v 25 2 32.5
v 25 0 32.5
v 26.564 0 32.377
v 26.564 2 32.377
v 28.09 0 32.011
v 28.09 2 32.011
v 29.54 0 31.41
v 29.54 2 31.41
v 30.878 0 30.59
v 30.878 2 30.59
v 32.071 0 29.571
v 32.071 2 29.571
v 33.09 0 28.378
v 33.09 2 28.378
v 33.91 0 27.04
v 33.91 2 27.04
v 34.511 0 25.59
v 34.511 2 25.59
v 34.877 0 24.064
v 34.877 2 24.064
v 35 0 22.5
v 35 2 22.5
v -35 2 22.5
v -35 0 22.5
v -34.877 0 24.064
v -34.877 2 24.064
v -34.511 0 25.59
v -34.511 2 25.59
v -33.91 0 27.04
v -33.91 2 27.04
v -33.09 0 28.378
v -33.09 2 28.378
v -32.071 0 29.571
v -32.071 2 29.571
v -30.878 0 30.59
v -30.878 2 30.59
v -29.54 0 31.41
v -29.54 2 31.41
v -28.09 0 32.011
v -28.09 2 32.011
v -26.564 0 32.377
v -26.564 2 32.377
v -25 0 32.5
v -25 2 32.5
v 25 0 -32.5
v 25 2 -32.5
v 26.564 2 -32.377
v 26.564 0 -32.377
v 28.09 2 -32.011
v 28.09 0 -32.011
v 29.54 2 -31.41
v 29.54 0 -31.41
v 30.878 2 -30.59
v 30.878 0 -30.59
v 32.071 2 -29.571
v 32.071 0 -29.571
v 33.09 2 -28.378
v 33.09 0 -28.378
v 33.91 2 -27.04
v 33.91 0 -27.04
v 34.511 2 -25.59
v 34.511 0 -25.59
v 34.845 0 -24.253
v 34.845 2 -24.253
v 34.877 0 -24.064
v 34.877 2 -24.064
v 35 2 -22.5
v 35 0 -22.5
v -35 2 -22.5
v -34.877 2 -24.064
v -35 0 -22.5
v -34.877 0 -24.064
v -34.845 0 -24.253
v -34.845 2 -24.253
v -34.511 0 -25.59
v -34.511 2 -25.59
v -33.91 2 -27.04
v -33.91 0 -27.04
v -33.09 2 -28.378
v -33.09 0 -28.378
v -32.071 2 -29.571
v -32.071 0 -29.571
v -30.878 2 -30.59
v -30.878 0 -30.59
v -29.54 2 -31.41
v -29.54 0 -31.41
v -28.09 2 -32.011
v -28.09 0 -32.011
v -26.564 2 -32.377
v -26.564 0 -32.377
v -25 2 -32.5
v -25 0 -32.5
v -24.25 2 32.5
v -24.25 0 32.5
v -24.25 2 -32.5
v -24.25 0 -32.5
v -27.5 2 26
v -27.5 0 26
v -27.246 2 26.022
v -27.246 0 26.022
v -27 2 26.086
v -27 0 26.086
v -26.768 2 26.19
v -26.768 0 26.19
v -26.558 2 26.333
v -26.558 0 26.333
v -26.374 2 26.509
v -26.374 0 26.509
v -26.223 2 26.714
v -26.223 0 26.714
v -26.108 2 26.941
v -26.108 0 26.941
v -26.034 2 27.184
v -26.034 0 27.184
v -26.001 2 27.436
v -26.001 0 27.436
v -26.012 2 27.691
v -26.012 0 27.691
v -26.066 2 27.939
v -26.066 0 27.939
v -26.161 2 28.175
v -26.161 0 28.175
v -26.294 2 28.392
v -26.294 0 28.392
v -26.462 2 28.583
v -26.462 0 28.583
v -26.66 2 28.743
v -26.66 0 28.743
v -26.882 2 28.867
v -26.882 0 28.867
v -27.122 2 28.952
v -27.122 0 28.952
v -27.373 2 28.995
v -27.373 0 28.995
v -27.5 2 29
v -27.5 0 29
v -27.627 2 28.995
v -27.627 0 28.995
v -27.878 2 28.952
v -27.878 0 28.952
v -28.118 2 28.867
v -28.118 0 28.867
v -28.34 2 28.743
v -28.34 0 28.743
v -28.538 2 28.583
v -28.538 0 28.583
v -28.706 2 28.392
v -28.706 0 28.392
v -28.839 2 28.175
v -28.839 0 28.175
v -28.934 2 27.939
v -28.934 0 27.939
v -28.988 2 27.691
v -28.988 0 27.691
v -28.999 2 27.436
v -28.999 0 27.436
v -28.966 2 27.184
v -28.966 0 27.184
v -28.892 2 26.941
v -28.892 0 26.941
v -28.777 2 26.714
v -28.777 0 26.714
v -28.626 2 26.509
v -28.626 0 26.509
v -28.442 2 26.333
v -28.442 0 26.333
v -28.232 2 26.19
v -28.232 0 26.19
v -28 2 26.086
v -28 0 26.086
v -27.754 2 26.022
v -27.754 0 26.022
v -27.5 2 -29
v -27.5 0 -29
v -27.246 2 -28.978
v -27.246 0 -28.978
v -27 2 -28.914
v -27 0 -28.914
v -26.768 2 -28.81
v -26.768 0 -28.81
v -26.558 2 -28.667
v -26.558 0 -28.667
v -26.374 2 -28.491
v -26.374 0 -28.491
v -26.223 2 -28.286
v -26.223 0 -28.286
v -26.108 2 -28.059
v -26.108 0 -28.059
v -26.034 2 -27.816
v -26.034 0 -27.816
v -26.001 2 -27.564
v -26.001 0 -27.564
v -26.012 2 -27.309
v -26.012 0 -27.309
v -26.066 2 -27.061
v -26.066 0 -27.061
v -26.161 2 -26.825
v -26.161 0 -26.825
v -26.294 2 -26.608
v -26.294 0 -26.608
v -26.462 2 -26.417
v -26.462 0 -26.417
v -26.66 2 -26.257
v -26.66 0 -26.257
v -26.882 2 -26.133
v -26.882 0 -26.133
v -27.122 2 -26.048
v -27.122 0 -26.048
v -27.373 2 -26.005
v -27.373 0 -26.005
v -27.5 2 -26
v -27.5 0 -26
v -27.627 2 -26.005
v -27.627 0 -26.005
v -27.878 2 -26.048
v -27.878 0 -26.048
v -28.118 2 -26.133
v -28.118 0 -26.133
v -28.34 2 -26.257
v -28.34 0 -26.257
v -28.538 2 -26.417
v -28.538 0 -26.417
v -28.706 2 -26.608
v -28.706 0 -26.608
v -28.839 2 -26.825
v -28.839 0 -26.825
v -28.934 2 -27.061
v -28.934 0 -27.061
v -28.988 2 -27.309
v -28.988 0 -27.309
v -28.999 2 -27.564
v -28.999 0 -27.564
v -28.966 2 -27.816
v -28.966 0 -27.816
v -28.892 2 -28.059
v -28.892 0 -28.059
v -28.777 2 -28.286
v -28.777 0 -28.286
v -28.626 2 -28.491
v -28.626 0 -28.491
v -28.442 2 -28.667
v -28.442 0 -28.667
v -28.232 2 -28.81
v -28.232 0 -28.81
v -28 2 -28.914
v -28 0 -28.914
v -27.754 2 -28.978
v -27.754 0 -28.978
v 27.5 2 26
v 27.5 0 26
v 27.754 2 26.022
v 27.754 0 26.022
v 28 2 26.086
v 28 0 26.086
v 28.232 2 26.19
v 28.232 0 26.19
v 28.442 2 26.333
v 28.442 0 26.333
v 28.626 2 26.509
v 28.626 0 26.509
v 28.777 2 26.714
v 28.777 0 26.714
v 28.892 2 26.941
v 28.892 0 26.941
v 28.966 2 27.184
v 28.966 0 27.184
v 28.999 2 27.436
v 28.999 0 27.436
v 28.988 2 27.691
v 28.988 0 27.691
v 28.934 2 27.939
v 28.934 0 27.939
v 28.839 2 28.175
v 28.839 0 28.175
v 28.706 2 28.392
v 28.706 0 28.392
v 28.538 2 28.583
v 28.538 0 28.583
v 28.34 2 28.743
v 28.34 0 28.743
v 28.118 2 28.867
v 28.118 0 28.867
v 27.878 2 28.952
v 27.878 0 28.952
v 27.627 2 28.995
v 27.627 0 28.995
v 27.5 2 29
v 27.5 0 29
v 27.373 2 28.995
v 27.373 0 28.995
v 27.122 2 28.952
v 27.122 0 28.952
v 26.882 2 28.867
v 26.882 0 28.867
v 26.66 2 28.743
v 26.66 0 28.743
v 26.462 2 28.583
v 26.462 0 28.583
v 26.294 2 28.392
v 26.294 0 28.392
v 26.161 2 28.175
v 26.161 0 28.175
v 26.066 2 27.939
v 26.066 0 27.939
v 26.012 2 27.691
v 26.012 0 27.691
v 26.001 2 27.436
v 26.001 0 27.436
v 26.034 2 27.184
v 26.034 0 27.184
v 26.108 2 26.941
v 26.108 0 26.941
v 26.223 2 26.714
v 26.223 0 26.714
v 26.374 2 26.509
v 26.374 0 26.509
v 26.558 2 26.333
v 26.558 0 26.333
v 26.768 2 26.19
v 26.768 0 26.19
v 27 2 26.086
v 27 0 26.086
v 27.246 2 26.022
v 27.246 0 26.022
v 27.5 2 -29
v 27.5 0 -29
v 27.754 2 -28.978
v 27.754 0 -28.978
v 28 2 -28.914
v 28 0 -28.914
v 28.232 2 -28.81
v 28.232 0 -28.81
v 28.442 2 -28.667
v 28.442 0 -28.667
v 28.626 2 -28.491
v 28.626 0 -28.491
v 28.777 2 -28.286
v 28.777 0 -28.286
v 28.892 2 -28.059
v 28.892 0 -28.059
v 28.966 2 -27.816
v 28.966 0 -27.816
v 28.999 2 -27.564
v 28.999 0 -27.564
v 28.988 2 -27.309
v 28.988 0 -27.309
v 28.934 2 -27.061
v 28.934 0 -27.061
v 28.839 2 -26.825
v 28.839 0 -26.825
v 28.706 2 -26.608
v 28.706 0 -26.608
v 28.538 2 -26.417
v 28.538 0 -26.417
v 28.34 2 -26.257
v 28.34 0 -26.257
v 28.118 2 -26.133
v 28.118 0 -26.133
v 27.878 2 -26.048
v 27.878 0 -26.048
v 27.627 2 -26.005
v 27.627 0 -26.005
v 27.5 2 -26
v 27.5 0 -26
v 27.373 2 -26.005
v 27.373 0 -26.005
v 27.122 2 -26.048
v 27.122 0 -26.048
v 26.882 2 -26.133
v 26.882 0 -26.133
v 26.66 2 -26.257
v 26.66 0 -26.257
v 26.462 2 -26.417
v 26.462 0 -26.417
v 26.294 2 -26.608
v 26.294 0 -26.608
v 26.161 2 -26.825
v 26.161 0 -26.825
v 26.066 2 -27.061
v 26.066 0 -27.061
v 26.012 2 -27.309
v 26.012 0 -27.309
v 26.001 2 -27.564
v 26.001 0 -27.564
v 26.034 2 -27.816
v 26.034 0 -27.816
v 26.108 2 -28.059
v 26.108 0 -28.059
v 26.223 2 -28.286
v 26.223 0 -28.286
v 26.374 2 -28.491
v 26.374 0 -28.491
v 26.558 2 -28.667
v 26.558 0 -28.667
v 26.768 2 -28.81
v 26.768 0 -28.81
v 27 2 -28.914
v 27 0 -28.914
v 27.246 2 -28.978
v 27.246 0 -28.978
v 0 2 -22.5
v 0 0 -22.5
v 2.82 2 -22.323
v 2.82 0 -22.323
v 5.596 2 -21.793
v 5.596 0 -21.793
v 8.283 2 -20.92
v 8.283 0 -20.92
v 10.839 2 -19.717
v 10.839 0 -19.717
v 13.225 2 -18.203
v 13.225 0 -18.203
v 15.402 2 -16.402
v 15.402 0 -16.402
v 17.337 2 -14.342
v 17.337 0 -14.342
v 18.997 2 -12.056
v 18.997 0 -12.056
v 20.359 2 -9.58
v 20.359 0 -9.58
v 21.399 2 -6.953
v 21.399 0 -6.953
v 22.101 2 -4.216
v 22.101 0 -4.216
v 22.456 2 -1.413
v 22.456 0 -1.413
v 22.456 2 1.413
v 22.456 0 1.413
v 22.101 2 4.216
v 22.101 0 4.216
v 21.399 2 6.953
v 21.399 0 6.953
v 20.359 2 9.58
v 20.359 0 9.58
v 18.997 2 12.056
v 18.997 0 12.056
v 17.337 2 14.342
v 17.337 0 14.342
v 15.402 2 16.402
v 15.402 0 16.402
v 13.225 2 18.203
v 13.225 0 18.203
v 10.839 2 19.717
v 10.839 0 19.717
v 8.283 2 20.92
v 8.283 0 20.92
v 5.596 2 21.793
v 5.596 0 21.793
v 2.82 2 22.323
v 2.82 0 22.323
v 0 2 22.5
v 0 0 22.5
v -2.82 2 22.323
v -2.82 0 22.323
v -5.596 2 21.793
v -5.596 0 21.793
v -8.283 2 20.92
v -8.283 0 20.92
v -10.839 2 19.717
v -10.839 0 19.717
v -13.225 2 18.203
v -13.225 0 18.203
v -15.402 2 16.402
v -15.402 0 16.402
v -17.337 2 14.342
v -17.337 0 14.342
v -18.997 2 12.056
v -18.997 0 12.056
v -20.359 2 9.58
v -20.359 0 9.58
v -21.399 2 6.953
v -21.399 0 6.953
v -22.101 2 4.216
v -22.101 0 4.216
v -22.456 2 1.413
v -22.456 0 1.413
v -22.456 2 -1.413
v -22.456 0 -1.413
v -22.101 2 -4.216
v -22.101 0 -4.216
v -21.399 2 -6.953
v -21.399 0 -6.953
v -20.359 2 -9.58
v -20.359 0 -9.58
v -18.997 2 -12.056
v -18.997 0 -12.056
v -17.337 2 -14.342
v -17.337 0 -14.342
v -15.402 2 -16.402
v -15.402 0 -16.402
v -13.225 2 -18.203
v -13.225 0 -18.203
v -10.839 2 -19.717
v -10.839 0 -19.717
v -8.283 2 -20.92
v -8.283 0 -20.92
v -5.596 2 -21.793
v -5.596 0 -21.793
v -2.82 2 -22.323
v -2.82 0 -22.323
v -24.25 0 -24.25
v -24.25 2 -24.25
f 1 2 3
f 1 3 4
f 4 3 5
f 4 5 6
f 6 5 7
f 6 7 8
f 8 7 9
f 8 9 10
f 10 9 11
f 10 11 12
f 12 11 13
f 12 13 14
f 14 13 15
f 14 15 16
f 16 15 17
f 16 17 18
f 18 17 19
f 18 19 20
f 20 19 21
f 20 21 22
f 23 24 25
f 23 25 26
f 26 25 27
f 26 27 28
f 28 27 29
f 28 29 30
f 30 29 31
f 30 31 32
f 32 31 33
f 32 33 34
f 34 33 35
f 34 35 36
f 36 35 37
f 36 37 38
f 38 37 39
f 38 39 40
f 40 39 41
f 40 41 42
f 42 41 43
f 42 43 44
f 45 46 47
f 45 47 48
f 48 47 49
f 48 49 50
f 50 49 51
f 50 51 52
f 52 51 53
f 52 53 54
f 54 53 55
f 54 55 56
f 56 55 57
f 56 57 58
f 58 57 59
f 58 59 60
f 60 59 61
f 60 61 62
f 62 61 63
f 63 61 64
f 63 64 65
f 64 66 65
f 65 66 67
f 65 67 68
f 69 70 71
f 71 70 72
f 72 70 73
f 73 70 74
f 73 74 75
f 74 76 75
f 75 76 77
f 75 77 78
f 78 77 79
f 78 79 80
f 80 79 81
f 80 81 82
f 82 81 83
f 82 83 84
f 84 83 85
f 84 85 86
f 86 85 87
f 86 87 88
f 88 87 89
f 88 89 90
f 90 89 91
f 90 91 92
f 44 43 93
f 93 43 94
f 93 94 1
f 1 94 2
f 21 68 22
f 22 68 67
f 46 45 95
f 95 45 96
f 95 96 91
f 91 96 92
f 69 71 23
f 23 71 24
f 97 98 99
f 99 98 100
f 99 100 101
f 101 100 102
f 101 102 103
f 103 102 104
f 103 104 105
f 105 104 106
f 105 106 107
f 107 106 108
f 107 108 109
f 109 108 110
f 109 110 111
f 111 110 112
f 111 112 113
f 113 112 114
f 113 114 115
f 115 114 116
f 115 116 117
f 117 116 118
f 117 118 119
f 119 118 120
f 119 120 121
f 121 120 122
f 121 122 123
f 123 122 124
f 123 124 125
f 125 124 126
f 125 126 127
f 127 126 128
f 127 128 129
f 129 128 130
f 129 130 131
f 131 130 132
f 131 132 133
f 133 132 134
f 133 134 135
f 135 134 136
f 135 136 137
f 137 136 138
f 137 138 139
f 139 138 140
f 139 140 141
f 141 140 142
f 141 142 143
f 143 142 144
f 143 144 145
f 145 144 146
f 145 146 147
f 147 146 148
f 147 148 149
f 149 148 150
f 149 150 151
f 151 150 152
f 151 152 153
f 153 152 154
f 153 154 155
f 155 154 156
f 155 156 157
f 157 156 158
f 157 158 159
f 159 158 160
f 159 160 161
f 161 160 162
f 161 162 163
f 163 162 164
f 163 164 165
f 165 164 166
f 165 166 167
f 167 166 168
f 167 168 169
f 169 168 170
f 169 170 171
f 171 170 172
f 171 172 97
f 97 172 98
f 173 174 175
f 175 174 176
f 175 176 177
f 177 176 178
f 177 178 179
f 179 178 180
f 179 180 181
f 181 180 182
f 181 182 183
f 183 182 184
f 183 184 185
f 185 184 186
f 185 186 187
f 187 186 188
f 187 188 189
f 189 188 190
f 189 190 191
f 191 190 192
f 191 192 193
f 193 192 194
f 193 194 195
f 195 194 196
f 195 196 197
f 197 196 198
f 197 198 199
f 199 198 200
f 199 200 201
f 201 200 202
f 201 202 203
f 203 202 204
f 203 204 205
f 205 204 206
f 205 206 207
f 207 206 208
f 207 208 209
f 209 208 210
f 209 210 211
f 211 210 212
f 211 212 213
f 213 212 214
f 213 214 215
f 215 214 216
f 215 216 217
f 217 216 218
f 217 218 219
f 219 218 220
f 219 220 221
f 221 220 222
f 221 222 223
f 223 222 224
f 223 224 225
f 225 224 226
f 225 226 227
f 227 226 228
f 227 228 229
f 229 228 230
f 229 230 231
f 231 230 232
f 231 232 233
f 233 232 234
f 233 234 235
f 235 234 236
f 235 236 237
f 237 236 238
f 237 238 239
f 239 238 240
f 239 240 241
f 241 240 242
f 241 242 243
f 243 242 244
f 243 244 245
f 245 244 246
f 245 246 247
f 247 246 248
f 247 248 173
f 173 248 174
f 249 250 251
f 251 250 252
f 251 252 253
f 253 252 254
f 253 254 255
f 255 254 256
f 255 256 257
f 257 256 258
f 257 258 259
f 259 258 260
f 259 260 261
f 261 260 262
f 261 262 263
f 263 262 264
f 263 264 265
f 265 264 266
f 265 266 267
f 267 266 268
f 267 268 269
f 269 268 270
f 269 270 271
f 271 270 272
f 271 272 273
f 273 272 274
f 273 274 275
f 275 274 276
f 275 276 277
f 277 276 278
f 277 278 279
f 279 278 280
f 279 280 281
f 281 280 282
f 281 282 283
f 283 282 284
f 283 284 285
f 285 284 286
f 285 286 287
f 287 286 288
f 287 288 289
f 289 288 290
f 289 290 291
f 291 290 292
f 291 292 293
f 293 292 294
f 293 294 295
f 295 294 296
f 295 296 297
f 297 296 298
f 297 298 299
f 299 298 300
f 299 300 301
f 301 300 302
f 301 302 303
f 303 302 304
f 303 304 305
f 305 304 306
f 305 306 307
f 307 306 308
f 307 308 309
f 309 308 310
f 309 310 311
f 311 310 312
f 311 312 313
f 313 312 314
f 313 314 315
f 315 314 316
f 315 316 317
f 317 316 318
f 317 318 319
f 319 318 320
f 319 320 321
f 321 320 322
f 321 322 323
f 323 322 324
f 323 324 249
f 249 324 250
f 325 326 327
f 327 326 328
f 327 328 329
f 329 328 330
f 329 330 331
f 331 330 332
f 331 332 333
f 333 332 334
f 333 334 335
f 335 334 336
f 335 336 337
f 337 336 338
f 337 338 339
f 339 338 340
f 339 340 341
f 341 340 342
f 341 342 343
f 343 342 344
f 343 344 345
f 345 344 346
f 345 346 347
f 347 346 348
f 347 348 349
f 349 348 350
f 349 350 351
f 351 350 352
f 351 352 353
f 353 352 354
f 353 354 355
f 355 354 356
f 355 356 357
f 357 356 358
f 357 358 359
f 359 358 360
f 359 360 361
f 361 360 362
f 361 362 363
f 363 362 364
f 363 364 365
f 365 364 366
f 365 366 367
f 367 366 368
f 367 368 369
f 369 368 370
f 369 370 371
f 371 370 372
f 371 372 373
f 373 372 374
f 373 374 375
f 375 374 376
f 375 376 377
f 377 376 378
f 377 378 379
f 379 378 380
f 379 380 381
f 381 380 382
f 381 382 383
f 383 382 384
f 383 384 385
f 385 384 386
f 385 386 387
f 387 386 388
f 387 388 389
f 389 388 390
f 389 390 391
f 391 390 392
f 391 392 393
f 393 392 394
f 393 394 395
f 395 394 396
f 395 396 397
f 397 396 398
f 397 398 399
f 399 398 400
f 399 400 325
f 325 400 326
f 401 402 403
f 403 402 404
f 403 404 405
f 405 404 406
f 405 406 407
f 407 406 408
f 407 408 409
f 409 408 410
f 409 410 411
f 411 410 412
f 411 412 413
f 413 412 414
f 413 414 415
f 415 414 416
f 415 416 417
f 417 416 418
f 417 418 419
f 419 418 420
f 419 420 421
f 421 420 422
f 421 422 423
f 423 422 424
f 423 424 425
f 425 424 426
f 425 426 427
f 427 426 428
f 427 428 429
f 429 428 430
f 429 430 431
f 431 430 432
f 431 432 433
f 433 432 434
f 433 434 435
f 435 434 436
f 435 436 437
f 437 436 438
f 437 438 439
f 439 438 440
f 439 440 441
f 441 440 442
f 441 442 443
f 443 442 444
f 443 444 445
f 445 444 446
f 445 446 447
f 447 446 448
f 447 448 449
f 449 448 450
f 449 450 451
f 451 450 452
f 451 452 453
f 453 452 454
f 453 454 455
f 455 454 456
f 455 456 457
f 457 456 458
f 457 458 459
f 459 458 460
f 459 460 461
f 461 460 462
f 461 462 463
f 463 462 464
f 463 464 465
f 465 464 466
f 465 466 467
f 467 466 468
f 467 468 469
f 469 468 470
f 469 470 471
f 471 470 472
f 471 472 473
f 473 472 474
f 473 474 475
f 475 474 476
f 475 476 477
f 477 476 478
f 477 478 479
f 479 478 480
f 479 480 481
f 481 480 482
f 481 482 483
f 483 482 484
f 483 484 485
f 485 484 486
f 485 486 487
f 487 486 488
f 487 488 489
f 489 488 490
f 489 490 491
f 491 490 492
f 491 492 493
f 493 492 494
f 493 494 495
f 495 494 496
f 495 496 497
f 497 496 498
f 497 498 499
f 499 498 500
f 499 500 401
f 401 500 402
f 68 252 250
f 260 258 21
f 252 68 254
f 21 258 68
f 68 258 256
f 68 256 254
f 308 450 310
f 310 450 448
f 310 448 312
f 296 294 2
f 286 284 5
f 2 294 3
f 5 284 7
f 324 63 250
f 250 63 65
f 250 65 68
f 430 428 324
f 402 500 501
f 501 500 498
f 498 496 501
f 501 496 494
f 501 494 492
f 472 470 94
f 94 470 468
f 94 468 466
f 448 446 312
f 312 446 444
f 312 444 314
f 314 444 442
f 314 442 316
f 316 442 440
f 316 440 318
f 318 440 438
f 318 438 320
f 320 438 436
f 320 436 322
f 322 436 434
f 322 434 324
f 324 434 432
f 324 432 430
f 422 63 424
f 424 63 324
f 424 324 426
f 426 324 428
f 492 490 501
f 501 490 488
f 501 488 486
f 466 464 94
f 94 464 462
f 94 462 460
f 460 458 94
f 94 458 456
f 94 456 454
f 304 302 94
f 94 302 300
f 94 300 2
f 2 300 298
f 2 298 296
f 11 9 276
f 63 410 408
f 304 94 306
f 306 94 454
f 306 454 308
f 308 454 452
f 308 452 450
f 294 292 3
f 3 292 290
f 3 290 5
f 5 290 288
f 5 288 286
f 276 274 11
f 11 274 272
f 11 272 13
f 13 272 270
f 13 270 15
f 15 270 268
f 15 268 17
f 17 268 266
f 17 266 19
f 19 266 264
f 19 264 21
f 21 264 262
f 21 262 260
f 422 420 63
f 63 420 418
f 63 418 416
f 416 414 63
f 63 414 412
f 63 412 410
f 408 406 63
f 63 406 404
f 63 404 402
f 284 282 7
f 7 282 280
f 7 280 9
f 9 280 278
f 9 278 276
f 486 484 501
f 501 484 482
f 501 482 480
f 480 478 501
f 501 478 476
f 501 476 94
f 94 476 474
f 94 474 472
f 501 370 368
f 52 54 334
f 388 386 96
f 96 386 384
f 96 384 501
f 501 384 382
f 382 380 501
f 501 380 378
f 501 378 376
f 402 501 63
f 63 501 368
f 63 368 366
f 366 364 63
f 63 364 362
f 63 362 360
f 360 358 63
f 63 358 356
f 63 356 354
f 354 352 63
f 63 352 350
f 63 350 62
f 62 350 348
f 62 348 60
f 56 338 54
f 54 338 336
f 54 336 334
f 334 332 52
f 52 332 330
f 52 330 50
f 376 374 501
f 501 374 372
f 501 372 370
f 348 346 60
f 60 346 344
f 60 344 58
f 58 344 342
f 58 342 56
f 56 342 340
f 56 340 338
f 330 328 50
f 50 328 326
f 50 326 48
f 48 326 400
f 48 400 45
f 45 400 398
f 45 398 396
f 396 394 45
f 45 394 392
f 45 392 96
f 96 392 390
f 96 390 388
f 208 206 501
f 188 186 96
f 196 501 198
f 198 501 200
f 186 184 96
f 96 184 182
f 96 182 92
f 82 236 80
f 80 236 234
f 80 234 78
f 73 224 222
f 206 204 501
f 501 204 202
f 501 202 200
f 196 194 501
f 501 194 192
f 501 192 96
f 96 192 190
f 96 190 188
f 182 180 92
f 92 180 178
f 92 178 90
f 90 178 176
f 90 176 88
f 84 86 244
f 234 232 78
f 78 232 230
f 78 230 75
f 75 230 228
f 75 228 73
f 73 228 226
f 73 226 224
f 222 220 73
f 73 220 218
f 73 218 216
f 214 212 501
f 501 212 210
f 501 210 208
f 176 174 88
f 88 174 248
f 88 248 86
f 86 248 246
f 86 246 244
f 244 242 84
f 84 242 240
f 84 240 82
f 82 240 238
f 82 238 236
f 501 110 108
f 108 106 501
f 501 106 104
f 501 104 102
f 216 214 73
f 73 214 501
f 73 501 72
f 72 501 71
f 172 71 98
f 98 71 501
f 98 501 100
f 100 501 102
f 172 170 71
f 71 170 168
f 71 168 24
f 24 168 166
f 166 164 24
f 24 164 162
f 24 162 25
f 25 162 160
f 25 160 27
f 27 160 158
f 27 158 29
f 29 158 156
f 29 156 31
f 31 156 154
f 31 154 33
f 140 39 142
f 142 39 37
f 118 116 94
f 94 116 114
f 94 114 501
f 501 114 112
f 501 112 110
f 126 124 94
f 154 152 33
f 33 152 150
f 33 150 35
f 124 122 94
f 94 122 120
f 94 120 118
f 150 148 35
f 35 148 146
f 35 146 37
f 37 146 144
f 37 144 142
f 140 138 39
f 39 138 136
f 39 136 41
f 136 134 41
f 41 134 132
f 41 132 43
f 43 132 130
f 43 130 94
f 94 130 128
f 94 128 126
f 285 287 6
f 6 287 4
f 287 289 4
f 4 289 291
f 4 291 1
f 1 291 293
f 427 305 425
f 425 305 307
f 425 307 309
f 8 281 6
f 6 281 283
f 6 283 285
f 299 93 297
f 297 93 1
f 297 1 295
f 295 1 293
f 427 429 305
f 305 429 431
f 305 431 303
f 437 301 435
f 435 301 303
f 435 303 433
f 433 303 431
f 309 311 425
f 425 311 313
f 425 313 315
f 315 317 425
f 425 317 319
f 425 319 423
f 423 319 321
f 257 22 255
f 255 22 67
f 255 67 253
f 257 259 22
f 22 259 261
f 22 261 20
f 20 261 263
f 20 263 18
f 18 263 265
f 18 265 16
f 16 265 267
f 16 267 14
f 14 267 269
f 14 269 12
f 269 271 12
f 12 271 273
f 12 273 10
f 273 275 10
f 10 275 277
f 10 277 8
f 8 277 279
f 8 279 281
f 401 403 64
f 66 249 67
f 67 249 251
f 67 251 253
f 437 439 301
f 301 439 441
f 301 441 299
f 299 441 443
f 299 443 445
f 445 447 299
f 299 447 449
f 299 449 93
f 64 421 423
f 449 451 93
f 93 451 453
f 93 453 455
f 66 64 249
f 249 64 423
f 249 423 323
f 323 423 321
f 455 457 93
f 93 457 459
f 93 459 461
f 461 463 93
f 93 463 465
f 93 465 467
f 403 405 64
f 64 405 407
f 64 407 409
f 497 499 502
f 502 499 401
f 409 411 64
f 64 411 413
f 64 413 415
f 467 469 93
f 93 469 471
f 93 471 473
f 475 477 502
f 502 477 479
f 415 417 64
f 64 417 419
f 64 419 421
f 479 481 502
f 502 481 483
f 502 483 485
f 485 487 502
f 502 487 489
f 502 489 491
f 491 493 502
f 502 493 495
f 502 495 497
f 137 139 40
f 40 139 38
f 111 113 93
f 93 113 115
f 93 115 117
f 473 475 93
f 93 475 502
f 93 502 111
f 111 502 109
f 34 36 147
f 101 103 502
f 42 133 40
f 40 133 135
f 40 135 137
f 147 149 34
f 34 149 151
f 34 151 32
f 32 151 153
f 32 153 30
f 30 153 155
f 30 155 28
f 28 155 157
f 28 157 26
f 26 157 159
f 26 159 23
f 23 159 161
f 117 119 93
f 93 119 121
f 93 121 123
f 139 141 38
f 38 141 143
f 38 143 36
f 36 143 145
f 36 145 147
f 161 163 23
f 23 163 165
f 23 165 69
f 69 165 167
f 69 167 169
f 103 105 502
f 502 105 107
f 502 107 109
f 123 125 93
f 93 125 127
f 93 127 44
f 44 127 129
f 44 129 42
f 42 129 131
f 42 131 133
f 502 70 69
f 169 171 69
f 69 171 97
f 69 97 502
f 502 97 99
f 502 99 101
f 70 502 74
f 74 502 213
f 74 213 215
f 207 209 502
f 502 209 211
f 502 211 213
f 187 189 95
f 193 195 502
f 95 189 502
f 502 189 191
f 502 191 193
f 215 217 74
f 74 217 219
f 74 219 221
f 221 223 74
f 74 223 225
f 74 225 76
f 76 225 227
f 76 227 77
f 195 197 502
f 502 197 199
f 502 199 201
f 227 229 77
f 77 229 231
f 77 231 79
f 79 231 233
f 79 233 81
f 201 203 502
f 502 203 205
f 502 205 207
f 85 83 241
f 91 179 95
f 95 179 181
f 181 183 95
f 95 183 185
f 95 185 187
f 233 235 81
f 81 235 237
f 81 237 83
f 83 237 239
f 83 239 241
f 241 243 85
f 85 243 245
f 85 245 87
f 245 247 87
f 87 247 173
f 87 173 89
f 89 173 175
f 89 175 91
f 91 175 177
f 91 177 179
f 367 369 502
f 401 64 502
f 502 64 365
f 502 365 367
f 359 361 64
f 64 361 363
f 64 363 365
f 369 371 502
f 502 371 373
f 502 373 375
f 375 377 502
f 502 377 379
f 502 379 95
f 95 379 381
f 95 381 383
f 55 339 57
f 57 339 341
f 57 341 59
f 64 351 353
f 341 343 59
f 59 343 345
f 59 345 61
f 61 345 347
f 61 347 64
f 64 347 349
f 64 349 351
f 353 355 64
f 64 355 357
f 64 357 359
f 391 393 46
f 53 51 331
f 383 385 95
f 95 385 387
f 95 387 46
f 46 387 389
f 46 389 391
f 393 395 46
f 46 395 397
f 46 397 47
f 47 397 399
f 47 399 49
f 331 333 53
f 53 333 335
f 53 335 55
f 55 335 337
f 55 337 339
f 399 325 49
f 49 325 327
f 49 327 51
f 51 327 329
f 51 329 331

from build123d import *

# Parameters (mm, degrees)
SKETCH_1_W          = 70
SKETCH_1_H          = 65
SKETCH_1_R          = 22.5
SKETCH_1_R_2        = 1.5
EXTRUDE_1_DEPTH     = 10
FILLET_1_R          = 10
FILLET_2_R          = 10
FILLET_3_R          = 10
FILLET_4_R          = 10
SKETCH_2_W          = 161.633033244
SKETCH_2_H          = 138.385284329
CUT_EXTRUDE_1_DEPTH = 8


with BuildPart() as part:
    # 草图1 → 凸台-拉伸1 (new body)
    with BuildSketch(Plane(origin=(0, 0, 0), x_dir=(1, 0, 0), z_dir=(0, 1, 0))):
        Rectangle(SKETCH_1_W, SKETCH_1_H)
        with Locations(Location((0, 0, 0), (0, 0, 270))):
            Circle(SKETCH_1_R, mode=Mode.SUBTRACT)
        with Locations(Location((-27.5, 27.5, 0), (0, 0, 270))):
            Circle(SKETCH_1_R_2, mode=Mode.SUBTRACT)
        with Locations(Location((-27.5, -27.5, 0), (0, 0, 270))):
            Circle(SKETCH_1_R_2, mode=Mode.SUBTRACT)
        with Locations(Location((27.5, -27.5, 0), (0, 0, 270))):
            Circle(SKETCH_1_R_2, mode=Mode.SUBTRACT)
        with Locations(Location((27.5, 27.5, 0), (0, 0, 270))):
            Circle(SKETCH_1_R_2, mode=Mode.SUBTRACT)
    extrude(amount=EXTRUDE_1_DEPTH)

    # 圆角1
    fillet_1_edges = [part.edges().sort_by_distance(p)[0] for p in [
        (-35, 5, -32.5),
    ]]
    fillet(fillet_1_edges, radius=FILLET_1_R)

    # 圆角2
    fillet_2_edges = [part.edges().sort_by_distance(p)[0] for p in [
        (35, 5, -32.5),
    ]]
    fillet(fillet_2_edges, radius=FILLET_2_R)

    # 圆角3
    fillet_3_edges = [part.edges().sort_by_distance(p)[0] for p in [
        (-35, 5, 32.5),
    ]]
    fillet(fillet_3_edges, radius=FILLET_3_R)

    # 圆角4
    fillet_4_edges = [part.edges().sort_by_distance(p)[0] for p in [
        (35, 5, 32.5),
    ]]
    fillet(fillet_4_edges, radius=FILLET_4_R)

    # 草图2 → 切除-拉伸1 (cut)
    with BuildSketch(Plane(origin=(0, 10, 0), x_dir=(1, 0, 0), z_dir=(0, 1, 0))):
        with Locations((-39.612940585, 34.19866222)):
            Rectangle(SKETCH_2_W, SKETCH_2_H)
    extrude(amount=-CUT_EXTRUDE_1_DEPTH, mode=Mode.SUBTRACT)


solid = part.part
